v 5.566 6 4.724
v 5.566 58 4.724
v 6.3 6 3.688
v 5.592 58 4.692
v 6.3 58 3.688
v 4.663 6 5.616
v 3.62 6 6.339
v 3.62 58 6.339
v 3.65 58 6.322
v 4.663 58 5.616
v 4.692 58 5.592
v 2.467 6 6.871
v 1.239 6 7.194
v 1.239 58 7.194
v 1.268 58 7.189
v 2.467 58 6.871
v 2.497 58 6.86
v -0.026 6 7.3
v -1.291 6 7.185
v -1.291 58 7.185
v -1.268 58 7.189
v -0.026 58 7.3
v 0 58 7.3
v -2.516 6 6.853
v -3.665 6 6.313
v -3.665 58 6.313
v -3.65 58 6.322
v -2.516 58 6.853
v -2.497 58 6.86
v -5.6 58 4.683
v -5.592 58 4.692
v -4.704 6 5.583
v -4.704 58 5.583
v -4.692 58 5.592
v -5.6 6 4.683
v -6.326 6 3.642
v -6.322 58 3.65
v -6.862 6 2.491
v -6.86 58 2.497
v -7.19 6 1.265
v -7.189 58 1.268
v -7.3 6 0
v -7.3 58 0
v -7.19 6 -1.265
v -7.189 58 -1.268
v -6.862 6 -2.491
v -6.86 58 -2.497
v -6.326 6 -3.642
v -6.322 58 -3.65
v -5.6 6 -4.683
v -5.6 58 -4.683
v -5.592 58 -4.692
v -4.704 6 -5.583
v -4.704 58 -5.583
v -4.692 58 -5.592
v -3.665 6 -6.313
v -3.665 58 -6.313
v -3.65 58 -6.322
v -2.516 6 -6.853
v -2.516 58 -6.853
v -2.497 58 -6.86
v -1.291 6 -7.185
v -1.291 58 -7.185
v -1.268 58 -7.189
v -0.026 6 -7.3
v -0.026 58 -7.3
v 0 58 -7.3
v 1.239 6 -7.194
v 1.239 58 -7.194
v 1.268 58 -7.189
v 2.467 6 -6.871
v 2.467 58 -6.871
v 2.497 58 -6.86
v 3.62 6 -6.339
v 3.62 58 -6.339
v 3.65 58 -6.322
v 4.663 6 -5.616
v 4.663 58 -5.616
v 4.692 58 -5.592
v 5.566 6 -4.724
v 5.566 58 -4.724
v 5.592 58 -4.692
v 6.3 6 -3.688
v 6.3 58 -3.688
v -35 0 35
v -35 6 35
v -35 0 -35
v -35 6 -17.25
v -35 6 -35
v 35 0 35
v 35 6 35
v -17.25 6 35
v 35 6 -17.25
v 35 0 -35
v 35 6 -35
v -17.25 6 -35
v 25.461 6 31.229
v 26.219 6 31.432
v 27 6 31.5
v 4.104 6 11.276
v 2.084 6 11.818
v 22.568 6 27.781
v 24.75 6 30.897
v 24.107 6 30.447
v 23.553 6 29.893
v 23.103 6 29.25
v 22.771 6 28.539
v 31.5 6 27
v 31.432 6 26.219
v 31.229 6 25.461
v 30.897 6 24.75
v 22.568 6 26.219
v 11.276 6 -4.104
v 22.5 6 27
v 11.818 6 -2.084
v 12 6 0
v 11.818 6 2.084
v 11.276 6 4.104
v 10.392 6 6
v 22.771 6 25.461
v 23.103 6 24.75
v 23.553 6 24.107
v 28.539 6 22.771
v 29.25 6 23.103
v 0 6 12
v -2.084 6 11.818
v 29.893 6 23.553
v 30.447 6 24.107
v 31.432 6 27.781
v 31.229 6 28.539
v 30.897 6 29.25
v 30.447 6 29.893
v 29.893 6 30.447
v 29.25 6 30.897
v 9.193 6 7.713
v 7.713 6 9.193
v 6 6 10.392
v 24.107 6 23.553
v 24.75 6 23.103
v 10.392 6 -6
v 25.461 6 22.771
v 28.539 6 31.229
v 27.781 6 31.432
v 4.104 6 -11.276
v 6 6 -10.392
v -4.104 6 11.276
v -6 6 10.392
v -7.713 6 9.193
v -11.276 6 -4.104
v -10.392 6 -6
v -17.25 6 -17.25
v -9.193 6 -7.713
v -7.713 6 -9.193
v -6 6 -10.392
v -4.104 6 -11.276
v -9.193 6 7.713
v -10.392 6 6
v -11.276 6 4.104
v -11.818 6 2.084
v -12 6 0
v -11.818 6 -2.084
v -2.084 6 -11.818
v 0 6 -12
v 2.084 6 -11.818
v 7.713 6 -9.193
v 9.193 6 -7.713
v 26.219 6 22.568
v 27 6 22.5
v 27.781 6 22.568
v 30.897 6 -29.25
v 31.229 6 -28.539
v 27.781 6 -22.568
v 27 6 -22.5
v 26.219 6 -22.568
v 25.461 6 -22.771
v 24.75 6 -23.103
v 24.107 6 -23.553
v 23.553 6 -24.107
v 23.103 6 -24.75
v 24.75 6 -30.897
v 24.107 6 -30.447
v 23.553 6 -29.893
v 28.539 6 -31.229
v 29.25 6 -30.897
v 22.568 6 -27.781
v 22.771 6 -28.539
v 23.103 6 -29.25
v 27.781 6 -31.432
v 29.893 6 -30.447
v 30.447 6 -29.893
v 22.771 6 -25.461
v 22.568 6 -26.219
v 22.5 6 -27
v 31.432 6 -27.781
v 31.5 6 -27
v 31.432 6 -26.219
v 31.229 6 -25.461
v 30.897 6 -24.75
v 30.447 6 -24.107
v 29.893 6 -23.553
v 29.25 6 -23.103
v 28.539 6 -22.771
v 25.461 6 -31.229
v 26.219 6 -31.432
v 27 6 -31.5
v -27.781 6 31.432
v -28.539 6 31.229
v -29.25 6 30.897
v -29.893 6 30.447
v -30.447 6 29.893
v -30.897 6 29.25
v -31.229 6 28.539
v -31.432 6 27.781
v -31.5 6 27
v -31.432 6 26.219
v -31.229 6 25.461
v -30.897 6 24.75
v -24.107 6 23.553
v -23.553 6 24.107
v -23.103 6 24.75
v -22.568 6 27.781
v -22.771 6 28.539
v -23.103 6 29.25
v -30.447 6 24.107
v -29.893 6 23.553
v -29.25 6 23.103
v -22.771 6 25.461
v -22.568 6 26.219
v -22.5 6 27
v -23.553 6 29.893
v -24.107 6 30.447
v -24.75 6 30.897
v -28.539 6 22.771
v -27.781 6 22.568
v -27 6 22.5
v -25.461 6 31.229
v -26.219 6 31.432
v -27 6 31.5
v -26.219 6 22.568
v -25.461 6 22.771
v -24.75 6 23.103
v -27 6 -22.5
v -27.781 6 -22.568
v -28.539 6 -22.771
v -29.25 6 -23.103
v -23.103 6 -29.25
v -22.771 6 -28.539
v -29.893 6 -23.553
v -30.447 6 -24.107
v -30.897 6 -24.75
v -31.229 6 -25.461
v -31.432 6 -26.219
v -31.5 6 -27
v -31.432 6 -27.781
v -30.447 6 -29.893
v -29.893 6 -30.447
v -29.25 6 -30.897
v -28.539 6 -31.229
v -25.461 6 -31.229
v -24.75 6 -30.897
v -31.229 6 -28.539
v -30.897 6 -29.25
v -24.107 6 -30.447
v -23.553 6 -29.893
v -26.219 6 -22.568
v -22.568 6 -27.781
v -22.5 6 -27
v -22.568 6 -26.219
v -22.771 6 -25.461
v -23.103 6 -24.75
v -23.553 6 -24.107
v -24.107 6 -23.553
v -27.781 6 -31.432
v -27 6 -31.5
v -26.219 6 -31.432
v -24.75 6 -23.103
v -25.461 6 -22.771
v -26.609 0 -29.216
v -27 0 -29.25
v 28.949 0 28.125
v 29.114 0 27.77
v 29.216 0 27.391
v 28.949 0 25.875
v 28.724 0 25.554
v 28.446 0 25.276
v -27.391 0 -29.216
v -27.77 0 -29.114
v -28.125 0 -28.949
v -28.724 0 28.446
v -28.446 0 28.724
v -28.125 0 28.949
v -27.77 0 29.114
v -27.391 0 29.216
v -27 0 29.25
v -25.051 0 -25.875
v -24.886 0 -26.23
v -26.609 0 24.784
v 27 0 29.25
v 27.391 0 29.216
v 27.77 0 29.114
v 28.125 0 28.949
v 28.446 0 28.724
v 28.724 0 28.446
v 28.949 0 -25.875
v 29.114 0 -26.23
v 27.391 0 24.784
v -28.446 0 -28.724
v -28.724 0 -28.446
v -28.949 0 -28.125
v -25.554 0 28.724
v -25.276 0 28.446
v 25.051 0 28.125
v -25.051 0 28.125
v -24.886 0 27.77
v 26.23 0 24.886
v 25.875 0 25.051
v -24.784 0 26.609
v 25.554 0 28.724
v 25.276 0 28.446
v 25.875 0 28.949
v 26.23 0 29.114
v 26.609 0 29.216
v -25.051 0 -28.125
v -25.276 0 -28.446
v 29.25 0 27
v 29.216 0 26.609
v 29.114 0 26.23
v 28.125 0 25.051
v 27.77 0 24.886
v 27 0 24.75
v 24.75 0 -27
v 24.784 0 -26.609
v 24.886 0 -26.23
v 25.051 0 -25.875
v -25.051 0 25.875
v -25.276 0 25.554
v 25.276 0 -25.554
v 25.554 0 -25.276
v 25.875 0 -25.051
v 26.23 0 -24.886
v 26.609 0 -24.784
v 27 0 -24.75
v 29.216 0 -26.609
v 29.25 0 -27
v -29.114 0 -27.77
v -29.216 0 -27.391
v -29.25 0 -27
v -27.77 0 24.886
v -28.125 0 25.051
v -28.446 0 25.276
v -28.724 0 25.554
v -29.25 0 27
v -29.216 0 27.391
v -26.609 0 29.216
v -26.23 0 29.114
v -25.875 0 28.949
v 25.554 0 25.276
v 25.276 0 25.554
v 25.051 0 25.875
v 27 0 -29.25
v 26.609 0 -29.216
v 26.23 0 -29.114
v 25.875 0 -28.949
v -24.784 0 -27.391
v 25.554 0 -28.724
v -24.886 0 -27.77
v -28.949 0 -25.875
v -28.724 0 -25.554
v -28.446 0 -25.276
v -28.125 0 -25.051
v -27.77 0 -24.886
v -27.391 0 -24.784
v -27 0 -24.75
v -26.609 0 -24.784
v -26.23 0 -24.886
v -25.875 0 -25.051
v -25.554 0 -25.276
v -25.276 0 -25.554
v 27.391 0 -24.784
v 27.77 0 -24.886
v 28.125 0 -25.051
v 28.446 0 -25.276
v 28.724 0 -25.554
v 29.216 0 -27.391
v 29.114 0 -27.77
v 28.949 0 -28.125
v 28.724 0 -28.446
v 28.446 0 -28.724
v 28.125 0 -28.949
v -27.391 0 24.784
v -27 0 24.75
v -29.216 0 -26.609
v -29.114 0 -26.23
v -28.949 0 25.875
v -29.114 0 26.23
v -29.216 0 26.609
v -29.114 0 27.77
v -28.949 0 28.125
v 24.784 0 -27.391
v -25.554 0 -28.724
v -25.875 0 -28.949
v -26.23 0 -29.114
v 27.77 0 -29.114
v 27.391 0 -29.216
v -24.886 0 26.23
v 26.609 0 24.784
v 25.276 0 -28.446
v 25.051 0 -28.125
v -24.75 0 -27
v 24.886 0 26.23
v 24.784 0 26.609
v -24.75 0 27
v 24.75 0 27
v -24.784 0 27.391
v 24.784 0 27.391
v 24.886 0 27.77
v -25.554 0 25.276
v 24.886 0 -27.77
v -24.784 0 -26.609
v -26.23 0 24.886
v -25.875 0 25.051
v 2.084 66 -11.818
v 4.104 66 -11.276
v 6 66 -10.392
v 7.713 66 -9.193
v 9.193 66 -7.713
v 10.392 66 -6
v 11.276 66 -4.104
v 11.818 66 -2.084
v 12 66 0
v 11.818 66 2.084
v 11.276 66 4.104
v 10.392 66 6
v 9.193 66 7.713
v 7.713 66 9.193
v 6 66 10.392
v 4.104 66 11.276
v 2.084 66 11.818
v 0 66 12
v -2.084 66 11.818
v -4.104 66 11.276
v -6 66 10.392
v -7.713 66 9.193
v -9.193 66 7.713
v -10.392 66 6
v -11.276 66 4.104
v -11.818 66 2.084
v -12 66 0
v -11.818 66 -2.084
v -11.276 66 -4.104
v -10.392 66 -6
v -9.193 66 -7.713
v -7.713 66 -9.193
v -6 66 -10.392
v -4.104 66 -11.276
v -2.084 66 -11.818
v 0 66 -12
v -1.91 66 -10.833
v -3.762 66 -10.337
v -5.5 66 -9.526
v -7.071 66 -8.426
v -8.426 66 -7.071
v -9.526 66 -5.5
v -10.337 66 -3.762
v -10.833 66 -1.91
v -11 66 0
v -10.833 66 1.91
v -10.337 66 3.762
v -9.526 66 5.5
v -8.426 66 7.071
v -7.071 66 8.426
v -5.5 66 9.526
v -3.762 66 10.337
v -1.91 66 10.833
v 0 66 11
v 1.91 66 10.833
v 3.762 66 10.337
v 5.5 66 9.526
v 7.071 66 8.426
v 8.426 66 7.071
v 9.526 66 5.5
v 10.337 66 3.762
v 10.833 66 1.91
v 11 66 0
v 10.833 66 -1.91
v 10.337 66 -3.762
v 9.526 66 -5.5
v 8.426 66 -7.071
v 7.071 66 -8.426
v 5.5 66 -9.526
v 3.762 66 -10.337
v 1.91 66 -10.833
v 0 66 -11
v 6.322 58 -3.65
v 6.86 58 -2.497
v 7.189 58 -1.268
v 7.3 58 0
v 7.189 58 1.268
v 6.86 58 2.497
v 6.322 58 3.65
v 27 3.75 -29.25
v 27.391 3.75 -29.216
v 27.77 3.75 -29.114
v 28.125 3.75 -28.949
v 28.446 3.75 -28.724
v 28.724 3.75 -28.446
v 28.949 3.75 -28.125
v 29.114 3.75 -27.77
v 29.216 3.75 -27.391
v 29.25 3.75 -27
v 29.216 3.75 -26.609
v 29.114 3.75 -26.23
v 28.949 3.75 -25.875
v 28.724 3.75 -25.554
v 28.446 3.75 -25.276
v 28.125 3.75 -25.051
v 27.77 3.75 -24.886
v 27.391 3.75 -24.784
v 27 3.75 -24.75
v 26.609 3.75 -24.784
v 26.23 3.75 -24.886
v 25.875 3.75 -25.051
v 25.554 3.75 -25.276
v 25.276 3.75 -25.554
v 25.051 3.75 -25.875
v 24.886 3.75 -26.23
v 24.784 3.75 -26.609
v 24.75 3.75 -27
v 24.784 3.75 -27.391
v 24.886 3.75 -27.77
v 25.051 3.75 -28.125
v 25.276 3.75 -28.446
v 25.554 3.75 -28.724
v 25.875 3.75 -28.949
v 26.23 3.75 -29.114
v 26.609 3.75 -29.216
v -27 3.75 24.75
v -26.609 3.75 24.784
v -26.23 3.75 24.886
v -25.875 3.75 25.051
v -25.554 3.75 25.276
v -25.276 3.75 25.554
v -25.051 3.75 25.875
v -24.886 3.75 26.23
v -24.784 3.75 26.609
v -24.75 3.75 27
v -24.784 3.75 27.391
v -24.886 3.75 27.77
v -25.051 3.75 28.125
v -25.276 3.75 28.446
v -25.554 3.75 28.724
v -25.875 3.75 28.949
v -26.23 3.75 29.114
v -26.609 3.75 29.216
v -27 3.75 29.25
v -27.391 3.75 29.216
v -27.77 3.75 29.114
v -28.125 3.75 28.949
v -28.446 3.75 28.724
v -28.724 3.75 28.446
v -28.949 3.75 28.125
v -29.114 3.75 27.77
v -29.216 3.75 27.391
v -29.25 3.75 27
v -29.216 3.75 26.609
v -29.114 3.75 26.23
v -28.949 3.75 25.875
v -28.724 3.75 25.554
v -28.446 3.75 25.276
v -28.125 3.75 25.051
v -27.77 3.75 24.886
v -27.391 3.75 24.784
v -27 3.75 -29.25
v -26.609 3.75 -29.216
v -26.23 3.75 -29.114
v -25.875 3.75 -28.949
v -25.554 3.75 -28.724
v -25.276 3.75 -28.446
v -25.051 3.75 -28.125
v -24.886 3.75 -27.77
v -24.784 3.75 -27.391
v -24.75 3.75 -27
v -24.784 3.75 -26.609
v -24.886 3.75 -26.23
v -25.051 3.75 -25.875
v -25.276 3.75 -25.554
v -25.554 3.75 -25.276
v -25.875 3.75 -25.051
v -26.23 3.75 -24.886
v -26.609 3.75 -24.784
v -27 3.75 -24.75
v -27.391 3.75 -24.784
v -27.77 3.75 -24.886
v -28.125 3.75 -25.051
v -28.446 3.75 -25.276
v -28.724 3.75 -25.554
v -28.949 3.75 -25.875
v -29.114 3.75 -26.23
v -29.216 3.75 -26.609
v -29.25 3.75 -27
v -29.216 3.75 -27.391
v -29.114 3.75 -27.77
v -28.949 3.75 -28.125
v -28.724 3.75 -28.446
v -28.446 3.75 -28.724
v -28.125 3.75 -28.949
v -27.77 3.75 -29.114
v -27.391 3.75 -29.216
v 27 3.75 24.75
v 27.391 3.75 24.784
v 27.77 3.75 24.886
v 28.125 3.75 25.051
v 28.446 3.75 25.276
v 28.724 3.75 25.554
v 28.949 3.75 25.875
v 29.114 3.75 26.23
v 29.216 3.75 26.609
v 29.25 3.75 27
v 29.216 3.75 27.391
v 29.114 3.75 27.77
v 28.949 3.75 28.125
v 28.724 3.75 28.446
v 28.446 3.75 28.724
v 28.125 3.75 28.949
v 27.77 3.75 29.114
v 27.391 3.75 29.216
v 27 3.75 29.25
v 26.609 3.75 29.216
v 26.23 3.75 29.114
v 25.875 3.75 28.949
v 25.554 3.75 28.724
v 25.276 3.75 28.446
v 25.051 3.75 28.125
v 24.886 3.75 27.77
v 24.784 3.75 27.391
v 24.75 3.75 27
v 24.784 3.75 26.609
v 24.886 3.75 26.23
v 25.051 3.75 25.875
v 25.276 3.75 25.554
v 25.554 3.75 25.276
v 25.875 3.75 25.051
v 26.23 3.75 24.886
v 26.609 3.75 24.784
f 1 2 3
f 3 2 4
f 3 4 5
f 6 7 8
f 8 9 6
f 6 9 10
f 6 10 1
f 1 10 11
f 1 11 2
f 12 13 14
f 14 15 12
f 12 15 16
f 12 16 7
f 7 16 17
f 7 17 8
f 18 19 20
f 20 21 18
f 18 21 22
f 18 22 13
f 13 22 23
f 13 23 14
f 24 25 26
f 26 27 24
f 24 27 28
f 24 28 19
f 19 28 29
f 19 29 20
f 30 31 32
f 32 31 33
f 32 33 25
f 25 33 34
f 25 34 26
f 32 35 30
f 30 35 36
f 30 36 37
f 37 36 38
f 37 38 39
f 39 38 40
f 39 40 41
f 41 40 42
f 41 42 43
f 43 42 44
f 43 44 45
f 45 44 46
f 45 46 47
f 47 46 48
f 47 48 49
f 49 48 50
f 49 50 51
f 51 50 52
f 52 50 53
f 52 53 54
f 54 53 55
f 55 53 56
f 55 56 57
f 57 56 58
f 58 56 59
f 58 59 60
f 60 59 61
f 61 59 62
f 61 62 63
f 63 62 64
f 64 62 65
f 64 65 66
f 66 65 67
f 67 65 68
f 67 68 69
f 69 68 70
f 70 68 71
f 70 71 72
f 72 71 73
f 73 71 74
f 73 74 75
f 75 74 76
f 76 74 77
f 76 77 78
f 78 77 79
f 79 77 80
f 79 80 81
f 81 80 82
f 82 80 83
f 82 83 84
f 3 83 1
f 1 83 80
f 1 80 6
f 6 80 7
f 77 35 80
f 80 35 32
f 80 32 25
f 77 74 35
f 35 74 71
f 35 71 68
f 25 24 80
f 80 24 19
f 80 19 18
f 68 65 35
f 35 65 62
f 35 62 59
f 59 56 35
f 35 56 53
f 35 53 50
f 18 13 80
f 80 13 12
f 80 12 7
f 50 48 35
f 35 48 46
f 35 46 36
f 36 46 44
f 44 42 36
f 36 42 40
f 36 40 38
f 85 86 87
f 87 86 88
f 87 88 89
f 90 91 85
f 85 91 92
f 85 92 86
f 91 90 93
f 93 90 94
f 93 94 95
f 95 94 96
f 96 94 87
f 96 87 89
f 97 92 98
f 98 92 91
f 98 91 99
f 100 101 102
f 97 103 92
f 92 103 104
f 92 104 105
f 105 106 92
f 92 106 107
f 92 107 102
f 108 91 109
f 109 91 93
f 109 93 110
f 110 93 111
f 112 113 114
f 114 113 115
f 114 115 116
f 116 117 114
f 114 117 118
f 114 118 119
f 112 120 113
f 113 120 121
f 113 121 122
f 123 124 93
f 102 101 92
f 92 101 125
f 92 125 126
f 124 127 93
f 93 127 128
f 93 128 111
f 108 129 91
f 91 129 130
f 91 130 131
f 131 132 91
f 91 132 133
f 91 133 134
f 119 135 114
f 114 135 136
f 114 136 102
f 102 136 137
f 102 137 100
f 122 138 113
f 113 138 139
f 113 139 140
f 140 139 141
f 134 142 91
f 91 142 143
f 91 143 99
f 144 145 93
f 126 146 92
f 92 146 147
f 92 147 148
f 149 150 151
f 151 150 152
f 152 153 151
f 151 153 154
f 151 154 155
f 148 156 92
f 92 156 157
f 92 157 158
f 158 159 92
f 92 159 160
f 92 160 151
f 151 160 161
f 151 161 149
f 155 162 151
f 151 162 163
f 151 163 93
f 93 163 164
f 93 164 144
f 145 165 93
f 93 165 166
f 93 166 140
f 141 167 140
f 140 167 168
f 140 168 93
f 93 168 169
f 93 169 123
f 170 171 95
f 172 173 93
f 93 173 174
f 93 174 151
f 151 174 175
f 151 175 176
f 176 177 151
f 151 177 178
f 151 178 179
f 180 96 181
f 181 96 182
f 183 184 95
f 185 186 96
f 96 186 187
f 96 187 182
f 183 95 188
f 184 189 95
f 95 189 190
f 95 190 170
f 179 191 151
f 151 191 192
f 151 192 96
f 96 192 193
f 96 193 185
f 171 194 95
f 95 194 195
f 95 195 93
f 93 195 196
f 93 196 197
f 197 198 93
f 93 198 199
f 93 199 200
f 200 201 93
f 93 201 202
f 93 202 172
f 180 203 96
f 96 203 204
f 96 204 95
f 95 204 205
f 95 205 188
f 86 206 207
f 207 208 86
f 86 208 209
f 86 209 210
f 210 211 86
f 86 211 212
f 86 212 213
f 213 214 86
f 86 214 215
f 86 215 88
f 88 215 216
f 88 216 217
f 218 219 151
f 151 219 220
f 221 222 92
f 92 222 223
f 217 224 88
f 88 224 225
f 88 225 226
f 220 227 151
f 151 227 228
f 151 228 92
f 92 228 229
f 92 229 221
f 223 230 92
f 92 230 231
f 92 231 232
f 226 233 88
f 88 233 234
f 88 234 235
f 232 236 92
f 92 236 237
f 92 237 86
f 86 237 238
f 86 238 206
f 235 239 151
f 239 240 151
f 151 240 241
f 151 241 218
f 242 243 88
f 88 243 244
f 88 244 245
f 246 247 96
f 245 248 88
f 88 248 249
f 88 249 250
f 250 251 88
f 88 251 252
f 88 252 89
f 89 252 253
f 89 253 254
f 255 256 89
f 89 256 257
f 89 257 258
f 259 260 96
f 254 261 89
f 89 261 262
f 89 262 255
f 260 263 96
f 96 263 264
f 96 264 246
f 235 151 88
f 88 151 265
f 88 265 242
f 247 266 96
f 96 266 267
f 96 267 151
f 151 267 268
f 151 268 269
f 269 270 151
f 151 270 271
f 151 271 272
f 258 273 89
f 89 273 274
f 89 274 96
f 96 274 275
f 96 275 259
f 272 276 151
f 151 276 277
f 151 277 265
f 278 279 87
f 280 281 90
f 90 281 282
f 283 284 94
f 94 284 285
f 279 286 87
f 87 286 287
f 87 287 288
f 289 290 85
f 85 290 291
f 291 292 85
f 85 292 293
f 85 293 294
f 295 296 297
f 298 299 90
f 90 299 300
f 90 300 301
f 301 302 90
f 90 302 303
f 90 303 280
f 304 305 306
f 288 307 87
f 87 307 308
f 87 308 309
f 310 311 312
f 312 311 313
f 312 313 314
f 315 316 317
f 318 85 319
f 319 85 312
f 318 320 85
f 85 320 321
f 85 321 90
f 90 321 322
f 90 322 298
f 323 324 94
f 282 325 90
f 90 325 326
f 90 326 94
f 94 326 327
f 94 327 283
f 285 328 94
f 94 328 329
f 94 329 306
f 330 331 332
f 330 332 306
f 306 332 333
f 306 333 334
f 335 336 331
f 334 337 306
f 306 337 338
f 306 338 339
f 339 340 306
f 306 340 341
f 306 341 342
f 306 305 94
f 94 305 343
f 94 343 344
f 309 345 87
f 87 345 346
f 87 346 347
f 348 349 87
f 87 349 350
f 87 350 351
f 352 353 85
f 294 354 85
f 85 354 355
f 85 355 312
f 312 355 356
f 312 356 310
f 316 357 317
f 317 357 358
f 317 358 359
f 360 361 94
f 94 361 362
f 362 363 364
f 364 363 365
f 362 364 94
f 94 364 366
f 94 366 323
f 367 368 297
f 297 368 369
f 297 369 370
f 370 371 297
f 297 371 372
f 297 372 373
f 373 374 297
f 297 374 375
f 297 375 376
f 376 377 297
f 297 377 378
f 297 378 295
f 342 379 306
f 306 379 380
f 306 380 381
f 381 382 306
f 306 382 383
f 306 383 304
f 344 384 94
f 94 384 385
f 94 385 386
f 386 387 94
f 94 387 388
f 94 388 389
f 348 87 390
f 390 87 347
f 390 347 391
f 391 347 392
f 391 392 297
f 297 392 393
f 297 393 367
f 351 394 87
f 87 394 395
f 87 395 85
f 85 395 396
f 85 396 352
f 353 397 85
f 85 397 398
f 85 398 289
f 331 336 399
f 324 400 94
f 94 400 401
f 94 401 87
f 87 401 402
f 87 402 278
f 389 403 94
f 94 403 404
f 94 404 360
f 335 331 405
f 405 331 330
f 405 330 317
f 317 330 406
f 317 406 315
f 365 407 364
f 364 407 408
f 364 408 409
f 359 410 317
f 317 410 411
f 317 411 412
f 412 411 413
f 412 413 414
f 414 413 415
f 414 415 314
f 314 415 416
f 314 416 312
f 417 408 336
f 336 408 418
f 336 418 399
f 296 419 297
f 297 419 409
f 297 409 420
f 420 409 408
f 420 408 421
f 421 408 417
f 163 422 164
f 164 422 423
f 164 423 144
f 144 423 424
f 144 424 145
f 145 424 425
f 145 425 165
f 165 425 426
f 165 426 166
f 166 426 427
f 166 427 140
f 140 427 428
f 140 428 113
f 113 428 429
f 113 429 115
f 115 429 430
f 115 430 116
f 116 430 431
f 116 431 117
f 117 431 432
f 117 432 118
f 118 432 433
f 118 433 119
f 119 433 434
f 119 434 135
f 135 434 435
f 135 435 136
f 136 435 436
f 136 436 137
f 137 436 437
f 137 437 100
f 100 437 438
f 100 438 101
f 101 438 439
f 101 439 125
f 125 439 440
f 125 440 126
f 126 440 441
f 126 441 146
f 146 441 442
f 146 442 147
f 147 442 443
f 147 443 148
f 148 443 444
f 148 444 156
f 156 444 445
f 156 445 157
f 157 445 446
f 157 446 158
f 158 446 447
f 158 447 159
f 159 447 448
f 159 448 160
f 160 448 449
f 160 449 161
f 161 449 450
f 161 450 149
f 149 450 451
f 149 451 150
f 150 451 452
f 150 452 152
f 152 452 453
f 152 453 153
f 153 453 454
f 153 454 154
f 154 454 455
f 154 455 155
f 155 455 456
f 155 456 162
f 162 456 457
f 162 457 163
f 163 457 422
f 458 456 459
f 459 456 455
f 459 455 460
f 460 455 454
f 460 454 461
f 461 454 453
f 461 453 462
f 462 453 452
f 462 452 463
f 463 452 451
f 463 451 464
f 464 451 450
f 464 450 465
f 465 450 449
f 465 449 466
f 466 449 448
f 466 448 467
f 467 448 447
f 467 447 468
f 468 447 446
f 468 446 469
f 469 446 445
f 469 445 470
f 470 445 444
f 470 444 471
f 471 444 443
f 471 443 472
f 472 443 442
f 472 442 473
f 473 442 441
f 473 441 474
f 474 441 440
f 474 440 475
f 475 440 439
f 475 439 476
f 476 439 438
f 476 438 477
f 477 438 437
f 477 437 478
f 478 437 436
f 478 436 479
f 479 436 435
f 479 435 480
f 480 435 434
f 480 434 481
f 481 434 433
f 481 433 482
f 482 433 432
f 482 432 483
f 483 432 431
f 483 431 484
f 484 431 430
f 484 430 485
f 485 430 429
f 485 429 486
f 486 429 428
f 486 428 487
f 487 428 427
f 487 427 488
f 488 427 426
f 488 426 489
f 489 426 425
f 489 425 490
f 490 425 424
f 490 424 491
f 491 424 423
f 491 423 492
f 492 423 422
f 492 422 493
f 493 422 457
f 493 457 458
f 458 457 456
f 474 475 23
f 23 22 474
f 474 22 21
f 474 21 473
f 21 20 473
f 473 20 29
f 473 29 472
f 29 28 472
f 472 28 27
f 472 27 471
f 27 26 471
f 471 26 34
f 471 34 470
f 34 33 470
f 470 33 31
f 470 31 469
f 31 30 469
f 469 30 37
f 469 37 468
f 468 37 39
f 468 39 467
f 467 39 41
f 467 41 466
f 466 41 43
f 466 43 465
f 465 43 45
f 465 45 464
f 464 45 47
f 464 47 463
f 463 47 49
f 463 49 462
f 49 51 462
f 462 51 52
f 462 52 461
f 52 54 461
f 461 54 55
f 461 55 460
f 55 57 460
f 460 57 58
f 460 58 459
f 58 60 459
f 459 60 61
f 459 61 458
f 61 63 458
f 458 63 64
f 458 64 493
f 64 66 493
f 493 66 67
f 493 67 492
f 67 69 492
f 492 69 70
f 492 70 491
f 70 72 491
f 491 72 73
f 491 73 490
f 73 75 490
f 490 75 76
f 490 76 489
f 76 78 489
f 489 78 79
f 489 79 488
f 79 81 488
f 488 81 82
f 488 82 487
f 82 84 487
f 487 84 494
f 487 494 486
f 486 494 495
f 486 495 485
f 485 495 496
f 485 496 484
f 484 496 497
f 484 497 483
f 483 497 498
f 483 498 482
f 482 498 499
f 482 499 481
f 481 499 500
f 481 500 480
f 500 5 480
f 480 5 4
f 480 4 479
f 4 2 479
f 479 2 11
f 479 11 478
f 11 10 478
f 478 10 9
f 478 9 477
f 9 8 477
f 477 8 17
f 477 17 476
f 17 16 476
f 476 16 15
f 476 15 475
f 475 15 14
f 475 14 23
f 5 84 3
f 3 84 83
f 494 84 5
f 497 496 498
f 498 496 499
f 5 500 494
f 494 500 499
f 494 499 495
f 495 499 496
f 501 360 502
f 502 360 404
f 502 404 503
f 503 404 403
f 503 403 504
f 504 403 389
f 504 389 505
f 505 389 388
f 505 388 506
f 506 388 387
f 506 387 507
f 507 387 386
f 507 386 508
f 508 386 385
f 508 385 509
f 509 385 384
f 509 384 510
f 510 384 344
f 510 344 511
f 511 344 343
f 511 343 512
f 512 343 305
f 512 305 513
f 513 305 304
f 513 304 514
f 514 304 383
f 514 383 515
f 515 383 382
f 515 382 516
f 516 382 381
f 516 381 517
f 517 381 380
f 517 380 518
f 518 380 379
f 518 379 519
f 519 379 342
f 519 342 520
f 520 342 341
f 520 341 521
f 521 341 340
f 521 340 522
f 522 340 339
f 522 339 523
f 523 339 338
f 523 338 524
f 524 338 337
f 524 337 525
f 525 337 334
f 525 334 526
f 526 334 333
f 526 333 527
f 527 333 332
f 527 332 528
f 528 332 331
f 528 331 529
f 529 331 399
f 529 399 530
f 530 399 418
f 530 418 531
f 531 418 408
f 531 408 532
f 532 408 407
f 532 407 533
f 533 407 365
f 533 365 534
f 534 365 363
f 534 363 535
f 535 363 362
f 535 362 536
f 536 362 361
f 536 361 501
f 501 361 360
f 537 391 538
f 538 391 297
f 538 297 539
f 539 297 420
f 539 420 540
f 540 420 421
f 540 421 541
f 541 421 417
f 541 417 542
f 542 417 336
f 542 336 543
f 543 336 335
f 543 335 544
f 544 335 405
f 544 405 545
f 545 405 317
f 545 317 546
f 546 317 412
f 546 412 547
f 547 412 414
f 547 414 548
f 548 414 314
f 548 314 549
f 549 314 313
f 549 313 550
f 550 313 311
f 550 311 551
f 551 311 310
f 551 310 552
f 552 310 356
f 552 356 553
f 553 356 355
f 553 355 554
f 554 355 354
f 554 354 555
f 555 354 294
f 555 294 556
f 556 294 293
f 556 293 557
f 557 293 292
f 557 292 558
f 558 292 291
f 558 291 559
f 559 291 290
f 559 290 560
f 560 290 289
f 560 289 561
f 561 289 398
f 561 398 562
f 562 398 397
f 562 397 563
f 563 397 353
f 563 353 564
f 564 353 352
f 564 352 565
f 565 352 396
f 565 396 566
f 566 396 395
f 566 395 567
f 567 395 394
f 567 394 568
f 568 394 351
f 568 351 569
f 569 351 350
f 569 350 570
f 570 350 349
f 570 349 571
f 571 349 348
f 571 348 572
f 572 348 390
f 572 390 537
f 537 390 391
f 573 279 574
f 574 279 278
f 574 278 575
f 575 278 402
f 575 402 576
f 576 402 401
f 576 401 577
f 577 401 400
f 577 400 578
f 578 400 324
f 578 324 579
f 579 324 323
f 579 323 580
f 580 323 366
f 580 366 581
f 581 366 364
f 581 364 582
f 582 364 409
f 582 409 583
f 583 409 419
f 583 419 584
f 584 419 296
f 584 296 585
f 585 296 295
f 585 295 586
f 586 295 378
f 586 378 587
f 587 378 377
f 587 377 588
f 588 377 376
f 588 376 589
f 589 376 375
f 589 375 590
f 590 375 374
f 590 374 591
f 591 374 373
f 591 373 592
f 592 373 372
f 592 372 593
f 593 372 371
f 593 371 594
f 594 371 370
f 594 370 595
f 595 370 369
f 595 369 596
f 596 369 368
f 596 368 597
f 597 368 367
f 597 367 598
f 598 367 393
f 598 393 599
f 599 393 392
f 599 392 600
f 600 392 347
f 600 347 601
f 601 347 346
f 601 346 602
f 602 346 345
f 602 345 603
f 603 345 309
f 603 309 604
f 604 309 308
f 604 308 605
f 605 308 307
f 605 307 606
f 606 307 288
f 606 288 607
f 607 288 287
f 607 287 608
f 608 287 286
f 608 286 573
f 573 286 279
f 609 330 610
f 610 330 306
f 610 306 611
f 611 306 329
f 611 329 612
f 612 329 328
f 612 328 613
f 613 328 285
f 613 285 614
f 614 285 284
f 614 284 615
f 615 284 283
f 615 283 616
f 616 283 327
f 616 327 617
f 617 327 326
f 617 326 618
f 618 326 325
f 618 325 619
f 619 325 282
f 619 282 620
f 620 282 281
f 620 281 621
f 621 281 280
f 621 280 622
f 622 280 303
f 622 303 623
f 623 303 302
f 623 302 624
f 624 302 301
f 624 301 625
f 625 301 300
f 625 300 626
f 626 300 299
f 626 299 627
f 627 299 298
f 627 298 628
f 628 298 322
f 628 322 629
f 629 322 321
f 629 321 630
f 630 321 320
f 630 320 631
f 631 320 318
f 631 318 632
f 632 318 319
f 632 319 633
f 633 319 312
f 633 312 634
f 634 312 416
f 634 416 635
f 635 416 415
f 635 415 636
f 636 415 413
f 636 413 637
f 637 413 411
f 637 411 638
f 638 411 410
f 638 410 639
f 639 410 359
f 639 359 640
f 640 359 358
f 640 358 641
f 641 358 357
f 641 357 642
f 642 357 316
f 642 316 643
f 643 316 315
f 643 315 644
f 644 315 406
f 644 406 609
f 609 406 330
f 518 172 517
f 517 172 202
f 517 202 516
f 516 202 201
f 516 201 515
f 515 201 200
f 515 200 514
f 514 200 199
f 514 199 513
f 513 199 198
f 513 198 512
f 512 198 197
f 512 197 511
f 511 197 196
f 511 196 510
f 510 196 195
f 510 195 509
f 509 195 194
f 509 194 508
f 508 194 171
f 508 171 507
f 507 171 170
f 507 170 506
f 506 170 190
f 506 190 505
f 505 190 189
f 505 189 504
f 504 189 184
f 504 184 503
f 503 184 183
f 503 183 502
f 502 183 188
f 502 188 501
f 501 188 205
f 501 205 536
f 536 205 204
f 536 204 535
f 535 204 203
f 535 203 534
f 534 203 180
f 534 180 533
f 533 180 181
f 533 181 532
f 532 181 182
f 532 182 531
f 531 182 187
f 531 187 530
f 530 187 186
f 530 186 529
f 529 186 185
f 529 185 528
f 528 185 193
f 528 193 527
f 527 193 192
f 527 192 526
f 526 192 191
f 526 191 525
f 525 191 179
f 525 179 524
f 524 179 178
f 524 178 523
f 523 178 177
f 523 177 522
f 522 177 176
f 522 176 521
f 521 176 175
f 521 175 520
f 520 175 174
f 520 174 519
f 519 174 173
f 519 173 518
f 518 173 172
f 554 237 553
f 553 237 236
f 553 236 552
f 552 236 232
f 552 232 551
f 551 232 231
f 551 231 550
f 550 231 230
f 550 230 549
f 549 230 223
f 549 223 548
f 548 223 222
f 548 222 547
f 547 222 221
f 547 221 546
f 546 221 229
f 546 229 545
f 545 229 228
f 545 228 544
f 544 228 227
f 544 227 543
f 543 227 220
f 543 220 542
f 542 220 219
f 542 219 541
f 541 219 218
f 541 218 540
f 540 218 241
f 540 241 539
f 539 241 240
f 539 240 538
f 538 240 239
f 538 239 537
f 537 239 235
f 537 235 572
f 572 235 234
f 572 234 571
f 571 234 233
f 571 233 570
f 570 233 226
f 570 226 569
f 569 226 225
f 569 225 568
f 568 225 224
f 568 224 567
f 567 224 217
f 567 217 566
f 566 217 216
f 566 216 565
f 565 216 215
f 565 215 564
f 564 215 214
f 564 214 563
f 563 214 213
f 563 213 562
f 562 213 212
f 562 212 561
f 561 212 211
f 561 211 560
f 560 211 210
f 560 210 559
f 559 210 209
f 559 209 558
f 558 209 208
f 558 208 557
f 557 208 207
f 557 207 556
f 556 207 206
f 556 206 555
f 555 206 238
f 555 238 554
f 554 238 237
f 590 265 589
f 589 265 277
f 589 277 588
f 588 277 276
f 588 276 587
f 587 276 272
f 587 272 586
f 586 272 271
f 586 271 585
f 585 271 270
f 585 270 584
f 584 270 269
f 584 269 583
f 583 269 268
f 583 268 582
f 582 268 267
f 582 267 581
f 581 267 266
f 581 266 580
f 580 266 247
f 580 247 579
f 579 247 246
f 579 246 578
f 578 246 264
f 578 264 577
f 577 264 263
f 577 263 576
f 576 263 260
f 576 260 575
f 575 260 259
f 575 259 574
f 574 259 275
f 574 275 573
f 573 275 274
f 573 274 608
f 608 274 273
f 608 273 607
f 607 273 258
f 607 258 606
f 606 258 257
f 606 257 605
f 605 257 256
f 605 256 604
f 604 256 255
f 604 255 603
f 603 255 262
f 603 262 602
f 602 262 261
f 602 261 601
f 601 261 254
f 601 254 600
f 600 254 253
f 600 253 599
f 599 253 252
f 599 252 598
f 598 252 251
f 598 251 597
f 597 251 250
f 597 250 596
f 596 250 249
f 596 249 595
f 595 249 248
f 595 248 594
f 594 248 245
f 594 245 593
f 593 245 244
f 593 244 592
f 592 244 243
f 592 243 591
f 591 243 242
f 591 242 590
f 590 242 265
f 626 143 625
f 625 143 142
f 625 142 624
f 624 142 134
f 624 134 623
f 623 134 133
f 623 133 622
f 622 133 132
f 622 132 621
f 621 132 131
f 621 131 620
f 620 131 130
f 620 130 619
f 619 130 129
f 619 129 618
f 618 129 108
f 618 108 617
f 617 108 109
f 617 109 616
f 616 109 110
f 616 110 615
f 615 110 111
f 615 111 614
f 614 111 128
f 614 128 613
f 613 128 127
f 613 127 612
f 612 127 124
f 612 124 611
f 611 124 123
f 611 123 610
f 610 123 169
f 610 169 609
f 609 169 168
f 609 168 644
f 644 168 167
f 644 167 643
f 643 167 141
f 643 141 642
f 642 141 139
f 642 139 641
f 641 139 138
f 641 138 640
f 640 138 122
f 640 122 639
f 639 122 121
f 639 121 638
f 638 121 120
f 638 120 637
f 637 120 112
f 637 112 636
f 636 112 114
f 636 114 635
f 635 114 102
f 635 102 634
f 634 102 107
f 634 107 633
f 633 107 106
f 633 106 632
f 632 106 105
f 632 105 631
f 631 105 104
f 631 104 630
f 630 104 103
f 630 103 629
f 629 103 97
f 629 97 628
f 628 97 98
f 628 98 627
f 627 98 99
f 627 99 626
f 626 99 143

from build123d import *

# Parameters (mm, degrees)
CROQUIS1_W              = 70
CROQUIS1_H              = 70
SALIENTE_EXTRUIR1_DEPTH = 6
SALIENTE_EXTRUIR2_DEPTH = 52
CROQUIS4_R              = 2.25
CORTAR_EXTRUIR1_DEPTH   = 83.498484835
CHAFL_N1_SIZE           = 2.25


with BuildPart() as part:
    # Croquis1 → Saliente-Extruir1 (new body)
    with BuildSketch(Plane(origin=(0, 0, 0), x_dir=(1, 0, 0), z_dir=(0, 1, 0))):
        Rectangle(CROQUIS1_W, CROQUIS1_H)
    extrude(amount=SALIENTE_EXTRUIR1_DEPTH)

    # Croquis2 → Revolución1 (revolve)
    with BuildSketch(Plane.XY, mode=Mode.PRIVATE) as revoluci_n1_sk:
        Polygon((7.3, 6), (12, 6), (12, 66), (11, 66), (7.3, 58), align=None)
    revolve(revoluci_n1_sk.sketch.rotate(Axis((0, 0, 0), (0, 1, 0)), 90), axis=Axis((0, 0, 0), (0, 1, 0)))

    # Croquis3 → Saliente-Extruir2 (add)
    with BuildSketch(Plane(origin=(0, 6, 0), x_dir=(1, 0, 0), z_dir=(0, 1, 0))):
        with BuildLine():
            Line((6.3, -3.687817783), (6.3, 3.687817783))
            ThreePointArc((6.3, 3.687817783), (7.3, 0), (6.3, -3.687817783))
        make_face()
    extrude(amount=SALIENTE_EXTRUIR2_DEPTH)

    # Croquis4 → Cortar-Extruir1 (cut, through all)
    with BuildSketch(Plane(origin=(0, 0, 0), x_dir=(1, 0, 0), z_dir=(0, 1, 0))):
        with Locations(Location((27, 27, 0), (0, 0, 270))):
            Circle(CROQUIS4_R)
        with Locations(Location((27, -27, 0), (0, 0, 270))):
            Circle(CROQUIS4_R)
        with Locations(Location((-27, 27, 0), (0, 0, 270))):
            Circle(CROQUIS4_R)
        with Locations(Location((-27, -27, 0), (0, 0, 270))):
            Circle(CROQUIS4_R)
    extrude(amount=CORTAR_EXTRUIR1_DEPTH, mode=Mode.SUBTRACT)

    # Chaflán1
    chafl_n1_edges = [part.edges().sort_by_distance(p)[0] for p in [
        (27, 6, 24.75),
        (-27, 6, -29.25),
        (-27, 6, 24.75),
        (27, 6, -29.25),
    ]]
    chamfer(chafl_n1_edges, length=CHAFL_N1_SIZE)


solid = part.part
